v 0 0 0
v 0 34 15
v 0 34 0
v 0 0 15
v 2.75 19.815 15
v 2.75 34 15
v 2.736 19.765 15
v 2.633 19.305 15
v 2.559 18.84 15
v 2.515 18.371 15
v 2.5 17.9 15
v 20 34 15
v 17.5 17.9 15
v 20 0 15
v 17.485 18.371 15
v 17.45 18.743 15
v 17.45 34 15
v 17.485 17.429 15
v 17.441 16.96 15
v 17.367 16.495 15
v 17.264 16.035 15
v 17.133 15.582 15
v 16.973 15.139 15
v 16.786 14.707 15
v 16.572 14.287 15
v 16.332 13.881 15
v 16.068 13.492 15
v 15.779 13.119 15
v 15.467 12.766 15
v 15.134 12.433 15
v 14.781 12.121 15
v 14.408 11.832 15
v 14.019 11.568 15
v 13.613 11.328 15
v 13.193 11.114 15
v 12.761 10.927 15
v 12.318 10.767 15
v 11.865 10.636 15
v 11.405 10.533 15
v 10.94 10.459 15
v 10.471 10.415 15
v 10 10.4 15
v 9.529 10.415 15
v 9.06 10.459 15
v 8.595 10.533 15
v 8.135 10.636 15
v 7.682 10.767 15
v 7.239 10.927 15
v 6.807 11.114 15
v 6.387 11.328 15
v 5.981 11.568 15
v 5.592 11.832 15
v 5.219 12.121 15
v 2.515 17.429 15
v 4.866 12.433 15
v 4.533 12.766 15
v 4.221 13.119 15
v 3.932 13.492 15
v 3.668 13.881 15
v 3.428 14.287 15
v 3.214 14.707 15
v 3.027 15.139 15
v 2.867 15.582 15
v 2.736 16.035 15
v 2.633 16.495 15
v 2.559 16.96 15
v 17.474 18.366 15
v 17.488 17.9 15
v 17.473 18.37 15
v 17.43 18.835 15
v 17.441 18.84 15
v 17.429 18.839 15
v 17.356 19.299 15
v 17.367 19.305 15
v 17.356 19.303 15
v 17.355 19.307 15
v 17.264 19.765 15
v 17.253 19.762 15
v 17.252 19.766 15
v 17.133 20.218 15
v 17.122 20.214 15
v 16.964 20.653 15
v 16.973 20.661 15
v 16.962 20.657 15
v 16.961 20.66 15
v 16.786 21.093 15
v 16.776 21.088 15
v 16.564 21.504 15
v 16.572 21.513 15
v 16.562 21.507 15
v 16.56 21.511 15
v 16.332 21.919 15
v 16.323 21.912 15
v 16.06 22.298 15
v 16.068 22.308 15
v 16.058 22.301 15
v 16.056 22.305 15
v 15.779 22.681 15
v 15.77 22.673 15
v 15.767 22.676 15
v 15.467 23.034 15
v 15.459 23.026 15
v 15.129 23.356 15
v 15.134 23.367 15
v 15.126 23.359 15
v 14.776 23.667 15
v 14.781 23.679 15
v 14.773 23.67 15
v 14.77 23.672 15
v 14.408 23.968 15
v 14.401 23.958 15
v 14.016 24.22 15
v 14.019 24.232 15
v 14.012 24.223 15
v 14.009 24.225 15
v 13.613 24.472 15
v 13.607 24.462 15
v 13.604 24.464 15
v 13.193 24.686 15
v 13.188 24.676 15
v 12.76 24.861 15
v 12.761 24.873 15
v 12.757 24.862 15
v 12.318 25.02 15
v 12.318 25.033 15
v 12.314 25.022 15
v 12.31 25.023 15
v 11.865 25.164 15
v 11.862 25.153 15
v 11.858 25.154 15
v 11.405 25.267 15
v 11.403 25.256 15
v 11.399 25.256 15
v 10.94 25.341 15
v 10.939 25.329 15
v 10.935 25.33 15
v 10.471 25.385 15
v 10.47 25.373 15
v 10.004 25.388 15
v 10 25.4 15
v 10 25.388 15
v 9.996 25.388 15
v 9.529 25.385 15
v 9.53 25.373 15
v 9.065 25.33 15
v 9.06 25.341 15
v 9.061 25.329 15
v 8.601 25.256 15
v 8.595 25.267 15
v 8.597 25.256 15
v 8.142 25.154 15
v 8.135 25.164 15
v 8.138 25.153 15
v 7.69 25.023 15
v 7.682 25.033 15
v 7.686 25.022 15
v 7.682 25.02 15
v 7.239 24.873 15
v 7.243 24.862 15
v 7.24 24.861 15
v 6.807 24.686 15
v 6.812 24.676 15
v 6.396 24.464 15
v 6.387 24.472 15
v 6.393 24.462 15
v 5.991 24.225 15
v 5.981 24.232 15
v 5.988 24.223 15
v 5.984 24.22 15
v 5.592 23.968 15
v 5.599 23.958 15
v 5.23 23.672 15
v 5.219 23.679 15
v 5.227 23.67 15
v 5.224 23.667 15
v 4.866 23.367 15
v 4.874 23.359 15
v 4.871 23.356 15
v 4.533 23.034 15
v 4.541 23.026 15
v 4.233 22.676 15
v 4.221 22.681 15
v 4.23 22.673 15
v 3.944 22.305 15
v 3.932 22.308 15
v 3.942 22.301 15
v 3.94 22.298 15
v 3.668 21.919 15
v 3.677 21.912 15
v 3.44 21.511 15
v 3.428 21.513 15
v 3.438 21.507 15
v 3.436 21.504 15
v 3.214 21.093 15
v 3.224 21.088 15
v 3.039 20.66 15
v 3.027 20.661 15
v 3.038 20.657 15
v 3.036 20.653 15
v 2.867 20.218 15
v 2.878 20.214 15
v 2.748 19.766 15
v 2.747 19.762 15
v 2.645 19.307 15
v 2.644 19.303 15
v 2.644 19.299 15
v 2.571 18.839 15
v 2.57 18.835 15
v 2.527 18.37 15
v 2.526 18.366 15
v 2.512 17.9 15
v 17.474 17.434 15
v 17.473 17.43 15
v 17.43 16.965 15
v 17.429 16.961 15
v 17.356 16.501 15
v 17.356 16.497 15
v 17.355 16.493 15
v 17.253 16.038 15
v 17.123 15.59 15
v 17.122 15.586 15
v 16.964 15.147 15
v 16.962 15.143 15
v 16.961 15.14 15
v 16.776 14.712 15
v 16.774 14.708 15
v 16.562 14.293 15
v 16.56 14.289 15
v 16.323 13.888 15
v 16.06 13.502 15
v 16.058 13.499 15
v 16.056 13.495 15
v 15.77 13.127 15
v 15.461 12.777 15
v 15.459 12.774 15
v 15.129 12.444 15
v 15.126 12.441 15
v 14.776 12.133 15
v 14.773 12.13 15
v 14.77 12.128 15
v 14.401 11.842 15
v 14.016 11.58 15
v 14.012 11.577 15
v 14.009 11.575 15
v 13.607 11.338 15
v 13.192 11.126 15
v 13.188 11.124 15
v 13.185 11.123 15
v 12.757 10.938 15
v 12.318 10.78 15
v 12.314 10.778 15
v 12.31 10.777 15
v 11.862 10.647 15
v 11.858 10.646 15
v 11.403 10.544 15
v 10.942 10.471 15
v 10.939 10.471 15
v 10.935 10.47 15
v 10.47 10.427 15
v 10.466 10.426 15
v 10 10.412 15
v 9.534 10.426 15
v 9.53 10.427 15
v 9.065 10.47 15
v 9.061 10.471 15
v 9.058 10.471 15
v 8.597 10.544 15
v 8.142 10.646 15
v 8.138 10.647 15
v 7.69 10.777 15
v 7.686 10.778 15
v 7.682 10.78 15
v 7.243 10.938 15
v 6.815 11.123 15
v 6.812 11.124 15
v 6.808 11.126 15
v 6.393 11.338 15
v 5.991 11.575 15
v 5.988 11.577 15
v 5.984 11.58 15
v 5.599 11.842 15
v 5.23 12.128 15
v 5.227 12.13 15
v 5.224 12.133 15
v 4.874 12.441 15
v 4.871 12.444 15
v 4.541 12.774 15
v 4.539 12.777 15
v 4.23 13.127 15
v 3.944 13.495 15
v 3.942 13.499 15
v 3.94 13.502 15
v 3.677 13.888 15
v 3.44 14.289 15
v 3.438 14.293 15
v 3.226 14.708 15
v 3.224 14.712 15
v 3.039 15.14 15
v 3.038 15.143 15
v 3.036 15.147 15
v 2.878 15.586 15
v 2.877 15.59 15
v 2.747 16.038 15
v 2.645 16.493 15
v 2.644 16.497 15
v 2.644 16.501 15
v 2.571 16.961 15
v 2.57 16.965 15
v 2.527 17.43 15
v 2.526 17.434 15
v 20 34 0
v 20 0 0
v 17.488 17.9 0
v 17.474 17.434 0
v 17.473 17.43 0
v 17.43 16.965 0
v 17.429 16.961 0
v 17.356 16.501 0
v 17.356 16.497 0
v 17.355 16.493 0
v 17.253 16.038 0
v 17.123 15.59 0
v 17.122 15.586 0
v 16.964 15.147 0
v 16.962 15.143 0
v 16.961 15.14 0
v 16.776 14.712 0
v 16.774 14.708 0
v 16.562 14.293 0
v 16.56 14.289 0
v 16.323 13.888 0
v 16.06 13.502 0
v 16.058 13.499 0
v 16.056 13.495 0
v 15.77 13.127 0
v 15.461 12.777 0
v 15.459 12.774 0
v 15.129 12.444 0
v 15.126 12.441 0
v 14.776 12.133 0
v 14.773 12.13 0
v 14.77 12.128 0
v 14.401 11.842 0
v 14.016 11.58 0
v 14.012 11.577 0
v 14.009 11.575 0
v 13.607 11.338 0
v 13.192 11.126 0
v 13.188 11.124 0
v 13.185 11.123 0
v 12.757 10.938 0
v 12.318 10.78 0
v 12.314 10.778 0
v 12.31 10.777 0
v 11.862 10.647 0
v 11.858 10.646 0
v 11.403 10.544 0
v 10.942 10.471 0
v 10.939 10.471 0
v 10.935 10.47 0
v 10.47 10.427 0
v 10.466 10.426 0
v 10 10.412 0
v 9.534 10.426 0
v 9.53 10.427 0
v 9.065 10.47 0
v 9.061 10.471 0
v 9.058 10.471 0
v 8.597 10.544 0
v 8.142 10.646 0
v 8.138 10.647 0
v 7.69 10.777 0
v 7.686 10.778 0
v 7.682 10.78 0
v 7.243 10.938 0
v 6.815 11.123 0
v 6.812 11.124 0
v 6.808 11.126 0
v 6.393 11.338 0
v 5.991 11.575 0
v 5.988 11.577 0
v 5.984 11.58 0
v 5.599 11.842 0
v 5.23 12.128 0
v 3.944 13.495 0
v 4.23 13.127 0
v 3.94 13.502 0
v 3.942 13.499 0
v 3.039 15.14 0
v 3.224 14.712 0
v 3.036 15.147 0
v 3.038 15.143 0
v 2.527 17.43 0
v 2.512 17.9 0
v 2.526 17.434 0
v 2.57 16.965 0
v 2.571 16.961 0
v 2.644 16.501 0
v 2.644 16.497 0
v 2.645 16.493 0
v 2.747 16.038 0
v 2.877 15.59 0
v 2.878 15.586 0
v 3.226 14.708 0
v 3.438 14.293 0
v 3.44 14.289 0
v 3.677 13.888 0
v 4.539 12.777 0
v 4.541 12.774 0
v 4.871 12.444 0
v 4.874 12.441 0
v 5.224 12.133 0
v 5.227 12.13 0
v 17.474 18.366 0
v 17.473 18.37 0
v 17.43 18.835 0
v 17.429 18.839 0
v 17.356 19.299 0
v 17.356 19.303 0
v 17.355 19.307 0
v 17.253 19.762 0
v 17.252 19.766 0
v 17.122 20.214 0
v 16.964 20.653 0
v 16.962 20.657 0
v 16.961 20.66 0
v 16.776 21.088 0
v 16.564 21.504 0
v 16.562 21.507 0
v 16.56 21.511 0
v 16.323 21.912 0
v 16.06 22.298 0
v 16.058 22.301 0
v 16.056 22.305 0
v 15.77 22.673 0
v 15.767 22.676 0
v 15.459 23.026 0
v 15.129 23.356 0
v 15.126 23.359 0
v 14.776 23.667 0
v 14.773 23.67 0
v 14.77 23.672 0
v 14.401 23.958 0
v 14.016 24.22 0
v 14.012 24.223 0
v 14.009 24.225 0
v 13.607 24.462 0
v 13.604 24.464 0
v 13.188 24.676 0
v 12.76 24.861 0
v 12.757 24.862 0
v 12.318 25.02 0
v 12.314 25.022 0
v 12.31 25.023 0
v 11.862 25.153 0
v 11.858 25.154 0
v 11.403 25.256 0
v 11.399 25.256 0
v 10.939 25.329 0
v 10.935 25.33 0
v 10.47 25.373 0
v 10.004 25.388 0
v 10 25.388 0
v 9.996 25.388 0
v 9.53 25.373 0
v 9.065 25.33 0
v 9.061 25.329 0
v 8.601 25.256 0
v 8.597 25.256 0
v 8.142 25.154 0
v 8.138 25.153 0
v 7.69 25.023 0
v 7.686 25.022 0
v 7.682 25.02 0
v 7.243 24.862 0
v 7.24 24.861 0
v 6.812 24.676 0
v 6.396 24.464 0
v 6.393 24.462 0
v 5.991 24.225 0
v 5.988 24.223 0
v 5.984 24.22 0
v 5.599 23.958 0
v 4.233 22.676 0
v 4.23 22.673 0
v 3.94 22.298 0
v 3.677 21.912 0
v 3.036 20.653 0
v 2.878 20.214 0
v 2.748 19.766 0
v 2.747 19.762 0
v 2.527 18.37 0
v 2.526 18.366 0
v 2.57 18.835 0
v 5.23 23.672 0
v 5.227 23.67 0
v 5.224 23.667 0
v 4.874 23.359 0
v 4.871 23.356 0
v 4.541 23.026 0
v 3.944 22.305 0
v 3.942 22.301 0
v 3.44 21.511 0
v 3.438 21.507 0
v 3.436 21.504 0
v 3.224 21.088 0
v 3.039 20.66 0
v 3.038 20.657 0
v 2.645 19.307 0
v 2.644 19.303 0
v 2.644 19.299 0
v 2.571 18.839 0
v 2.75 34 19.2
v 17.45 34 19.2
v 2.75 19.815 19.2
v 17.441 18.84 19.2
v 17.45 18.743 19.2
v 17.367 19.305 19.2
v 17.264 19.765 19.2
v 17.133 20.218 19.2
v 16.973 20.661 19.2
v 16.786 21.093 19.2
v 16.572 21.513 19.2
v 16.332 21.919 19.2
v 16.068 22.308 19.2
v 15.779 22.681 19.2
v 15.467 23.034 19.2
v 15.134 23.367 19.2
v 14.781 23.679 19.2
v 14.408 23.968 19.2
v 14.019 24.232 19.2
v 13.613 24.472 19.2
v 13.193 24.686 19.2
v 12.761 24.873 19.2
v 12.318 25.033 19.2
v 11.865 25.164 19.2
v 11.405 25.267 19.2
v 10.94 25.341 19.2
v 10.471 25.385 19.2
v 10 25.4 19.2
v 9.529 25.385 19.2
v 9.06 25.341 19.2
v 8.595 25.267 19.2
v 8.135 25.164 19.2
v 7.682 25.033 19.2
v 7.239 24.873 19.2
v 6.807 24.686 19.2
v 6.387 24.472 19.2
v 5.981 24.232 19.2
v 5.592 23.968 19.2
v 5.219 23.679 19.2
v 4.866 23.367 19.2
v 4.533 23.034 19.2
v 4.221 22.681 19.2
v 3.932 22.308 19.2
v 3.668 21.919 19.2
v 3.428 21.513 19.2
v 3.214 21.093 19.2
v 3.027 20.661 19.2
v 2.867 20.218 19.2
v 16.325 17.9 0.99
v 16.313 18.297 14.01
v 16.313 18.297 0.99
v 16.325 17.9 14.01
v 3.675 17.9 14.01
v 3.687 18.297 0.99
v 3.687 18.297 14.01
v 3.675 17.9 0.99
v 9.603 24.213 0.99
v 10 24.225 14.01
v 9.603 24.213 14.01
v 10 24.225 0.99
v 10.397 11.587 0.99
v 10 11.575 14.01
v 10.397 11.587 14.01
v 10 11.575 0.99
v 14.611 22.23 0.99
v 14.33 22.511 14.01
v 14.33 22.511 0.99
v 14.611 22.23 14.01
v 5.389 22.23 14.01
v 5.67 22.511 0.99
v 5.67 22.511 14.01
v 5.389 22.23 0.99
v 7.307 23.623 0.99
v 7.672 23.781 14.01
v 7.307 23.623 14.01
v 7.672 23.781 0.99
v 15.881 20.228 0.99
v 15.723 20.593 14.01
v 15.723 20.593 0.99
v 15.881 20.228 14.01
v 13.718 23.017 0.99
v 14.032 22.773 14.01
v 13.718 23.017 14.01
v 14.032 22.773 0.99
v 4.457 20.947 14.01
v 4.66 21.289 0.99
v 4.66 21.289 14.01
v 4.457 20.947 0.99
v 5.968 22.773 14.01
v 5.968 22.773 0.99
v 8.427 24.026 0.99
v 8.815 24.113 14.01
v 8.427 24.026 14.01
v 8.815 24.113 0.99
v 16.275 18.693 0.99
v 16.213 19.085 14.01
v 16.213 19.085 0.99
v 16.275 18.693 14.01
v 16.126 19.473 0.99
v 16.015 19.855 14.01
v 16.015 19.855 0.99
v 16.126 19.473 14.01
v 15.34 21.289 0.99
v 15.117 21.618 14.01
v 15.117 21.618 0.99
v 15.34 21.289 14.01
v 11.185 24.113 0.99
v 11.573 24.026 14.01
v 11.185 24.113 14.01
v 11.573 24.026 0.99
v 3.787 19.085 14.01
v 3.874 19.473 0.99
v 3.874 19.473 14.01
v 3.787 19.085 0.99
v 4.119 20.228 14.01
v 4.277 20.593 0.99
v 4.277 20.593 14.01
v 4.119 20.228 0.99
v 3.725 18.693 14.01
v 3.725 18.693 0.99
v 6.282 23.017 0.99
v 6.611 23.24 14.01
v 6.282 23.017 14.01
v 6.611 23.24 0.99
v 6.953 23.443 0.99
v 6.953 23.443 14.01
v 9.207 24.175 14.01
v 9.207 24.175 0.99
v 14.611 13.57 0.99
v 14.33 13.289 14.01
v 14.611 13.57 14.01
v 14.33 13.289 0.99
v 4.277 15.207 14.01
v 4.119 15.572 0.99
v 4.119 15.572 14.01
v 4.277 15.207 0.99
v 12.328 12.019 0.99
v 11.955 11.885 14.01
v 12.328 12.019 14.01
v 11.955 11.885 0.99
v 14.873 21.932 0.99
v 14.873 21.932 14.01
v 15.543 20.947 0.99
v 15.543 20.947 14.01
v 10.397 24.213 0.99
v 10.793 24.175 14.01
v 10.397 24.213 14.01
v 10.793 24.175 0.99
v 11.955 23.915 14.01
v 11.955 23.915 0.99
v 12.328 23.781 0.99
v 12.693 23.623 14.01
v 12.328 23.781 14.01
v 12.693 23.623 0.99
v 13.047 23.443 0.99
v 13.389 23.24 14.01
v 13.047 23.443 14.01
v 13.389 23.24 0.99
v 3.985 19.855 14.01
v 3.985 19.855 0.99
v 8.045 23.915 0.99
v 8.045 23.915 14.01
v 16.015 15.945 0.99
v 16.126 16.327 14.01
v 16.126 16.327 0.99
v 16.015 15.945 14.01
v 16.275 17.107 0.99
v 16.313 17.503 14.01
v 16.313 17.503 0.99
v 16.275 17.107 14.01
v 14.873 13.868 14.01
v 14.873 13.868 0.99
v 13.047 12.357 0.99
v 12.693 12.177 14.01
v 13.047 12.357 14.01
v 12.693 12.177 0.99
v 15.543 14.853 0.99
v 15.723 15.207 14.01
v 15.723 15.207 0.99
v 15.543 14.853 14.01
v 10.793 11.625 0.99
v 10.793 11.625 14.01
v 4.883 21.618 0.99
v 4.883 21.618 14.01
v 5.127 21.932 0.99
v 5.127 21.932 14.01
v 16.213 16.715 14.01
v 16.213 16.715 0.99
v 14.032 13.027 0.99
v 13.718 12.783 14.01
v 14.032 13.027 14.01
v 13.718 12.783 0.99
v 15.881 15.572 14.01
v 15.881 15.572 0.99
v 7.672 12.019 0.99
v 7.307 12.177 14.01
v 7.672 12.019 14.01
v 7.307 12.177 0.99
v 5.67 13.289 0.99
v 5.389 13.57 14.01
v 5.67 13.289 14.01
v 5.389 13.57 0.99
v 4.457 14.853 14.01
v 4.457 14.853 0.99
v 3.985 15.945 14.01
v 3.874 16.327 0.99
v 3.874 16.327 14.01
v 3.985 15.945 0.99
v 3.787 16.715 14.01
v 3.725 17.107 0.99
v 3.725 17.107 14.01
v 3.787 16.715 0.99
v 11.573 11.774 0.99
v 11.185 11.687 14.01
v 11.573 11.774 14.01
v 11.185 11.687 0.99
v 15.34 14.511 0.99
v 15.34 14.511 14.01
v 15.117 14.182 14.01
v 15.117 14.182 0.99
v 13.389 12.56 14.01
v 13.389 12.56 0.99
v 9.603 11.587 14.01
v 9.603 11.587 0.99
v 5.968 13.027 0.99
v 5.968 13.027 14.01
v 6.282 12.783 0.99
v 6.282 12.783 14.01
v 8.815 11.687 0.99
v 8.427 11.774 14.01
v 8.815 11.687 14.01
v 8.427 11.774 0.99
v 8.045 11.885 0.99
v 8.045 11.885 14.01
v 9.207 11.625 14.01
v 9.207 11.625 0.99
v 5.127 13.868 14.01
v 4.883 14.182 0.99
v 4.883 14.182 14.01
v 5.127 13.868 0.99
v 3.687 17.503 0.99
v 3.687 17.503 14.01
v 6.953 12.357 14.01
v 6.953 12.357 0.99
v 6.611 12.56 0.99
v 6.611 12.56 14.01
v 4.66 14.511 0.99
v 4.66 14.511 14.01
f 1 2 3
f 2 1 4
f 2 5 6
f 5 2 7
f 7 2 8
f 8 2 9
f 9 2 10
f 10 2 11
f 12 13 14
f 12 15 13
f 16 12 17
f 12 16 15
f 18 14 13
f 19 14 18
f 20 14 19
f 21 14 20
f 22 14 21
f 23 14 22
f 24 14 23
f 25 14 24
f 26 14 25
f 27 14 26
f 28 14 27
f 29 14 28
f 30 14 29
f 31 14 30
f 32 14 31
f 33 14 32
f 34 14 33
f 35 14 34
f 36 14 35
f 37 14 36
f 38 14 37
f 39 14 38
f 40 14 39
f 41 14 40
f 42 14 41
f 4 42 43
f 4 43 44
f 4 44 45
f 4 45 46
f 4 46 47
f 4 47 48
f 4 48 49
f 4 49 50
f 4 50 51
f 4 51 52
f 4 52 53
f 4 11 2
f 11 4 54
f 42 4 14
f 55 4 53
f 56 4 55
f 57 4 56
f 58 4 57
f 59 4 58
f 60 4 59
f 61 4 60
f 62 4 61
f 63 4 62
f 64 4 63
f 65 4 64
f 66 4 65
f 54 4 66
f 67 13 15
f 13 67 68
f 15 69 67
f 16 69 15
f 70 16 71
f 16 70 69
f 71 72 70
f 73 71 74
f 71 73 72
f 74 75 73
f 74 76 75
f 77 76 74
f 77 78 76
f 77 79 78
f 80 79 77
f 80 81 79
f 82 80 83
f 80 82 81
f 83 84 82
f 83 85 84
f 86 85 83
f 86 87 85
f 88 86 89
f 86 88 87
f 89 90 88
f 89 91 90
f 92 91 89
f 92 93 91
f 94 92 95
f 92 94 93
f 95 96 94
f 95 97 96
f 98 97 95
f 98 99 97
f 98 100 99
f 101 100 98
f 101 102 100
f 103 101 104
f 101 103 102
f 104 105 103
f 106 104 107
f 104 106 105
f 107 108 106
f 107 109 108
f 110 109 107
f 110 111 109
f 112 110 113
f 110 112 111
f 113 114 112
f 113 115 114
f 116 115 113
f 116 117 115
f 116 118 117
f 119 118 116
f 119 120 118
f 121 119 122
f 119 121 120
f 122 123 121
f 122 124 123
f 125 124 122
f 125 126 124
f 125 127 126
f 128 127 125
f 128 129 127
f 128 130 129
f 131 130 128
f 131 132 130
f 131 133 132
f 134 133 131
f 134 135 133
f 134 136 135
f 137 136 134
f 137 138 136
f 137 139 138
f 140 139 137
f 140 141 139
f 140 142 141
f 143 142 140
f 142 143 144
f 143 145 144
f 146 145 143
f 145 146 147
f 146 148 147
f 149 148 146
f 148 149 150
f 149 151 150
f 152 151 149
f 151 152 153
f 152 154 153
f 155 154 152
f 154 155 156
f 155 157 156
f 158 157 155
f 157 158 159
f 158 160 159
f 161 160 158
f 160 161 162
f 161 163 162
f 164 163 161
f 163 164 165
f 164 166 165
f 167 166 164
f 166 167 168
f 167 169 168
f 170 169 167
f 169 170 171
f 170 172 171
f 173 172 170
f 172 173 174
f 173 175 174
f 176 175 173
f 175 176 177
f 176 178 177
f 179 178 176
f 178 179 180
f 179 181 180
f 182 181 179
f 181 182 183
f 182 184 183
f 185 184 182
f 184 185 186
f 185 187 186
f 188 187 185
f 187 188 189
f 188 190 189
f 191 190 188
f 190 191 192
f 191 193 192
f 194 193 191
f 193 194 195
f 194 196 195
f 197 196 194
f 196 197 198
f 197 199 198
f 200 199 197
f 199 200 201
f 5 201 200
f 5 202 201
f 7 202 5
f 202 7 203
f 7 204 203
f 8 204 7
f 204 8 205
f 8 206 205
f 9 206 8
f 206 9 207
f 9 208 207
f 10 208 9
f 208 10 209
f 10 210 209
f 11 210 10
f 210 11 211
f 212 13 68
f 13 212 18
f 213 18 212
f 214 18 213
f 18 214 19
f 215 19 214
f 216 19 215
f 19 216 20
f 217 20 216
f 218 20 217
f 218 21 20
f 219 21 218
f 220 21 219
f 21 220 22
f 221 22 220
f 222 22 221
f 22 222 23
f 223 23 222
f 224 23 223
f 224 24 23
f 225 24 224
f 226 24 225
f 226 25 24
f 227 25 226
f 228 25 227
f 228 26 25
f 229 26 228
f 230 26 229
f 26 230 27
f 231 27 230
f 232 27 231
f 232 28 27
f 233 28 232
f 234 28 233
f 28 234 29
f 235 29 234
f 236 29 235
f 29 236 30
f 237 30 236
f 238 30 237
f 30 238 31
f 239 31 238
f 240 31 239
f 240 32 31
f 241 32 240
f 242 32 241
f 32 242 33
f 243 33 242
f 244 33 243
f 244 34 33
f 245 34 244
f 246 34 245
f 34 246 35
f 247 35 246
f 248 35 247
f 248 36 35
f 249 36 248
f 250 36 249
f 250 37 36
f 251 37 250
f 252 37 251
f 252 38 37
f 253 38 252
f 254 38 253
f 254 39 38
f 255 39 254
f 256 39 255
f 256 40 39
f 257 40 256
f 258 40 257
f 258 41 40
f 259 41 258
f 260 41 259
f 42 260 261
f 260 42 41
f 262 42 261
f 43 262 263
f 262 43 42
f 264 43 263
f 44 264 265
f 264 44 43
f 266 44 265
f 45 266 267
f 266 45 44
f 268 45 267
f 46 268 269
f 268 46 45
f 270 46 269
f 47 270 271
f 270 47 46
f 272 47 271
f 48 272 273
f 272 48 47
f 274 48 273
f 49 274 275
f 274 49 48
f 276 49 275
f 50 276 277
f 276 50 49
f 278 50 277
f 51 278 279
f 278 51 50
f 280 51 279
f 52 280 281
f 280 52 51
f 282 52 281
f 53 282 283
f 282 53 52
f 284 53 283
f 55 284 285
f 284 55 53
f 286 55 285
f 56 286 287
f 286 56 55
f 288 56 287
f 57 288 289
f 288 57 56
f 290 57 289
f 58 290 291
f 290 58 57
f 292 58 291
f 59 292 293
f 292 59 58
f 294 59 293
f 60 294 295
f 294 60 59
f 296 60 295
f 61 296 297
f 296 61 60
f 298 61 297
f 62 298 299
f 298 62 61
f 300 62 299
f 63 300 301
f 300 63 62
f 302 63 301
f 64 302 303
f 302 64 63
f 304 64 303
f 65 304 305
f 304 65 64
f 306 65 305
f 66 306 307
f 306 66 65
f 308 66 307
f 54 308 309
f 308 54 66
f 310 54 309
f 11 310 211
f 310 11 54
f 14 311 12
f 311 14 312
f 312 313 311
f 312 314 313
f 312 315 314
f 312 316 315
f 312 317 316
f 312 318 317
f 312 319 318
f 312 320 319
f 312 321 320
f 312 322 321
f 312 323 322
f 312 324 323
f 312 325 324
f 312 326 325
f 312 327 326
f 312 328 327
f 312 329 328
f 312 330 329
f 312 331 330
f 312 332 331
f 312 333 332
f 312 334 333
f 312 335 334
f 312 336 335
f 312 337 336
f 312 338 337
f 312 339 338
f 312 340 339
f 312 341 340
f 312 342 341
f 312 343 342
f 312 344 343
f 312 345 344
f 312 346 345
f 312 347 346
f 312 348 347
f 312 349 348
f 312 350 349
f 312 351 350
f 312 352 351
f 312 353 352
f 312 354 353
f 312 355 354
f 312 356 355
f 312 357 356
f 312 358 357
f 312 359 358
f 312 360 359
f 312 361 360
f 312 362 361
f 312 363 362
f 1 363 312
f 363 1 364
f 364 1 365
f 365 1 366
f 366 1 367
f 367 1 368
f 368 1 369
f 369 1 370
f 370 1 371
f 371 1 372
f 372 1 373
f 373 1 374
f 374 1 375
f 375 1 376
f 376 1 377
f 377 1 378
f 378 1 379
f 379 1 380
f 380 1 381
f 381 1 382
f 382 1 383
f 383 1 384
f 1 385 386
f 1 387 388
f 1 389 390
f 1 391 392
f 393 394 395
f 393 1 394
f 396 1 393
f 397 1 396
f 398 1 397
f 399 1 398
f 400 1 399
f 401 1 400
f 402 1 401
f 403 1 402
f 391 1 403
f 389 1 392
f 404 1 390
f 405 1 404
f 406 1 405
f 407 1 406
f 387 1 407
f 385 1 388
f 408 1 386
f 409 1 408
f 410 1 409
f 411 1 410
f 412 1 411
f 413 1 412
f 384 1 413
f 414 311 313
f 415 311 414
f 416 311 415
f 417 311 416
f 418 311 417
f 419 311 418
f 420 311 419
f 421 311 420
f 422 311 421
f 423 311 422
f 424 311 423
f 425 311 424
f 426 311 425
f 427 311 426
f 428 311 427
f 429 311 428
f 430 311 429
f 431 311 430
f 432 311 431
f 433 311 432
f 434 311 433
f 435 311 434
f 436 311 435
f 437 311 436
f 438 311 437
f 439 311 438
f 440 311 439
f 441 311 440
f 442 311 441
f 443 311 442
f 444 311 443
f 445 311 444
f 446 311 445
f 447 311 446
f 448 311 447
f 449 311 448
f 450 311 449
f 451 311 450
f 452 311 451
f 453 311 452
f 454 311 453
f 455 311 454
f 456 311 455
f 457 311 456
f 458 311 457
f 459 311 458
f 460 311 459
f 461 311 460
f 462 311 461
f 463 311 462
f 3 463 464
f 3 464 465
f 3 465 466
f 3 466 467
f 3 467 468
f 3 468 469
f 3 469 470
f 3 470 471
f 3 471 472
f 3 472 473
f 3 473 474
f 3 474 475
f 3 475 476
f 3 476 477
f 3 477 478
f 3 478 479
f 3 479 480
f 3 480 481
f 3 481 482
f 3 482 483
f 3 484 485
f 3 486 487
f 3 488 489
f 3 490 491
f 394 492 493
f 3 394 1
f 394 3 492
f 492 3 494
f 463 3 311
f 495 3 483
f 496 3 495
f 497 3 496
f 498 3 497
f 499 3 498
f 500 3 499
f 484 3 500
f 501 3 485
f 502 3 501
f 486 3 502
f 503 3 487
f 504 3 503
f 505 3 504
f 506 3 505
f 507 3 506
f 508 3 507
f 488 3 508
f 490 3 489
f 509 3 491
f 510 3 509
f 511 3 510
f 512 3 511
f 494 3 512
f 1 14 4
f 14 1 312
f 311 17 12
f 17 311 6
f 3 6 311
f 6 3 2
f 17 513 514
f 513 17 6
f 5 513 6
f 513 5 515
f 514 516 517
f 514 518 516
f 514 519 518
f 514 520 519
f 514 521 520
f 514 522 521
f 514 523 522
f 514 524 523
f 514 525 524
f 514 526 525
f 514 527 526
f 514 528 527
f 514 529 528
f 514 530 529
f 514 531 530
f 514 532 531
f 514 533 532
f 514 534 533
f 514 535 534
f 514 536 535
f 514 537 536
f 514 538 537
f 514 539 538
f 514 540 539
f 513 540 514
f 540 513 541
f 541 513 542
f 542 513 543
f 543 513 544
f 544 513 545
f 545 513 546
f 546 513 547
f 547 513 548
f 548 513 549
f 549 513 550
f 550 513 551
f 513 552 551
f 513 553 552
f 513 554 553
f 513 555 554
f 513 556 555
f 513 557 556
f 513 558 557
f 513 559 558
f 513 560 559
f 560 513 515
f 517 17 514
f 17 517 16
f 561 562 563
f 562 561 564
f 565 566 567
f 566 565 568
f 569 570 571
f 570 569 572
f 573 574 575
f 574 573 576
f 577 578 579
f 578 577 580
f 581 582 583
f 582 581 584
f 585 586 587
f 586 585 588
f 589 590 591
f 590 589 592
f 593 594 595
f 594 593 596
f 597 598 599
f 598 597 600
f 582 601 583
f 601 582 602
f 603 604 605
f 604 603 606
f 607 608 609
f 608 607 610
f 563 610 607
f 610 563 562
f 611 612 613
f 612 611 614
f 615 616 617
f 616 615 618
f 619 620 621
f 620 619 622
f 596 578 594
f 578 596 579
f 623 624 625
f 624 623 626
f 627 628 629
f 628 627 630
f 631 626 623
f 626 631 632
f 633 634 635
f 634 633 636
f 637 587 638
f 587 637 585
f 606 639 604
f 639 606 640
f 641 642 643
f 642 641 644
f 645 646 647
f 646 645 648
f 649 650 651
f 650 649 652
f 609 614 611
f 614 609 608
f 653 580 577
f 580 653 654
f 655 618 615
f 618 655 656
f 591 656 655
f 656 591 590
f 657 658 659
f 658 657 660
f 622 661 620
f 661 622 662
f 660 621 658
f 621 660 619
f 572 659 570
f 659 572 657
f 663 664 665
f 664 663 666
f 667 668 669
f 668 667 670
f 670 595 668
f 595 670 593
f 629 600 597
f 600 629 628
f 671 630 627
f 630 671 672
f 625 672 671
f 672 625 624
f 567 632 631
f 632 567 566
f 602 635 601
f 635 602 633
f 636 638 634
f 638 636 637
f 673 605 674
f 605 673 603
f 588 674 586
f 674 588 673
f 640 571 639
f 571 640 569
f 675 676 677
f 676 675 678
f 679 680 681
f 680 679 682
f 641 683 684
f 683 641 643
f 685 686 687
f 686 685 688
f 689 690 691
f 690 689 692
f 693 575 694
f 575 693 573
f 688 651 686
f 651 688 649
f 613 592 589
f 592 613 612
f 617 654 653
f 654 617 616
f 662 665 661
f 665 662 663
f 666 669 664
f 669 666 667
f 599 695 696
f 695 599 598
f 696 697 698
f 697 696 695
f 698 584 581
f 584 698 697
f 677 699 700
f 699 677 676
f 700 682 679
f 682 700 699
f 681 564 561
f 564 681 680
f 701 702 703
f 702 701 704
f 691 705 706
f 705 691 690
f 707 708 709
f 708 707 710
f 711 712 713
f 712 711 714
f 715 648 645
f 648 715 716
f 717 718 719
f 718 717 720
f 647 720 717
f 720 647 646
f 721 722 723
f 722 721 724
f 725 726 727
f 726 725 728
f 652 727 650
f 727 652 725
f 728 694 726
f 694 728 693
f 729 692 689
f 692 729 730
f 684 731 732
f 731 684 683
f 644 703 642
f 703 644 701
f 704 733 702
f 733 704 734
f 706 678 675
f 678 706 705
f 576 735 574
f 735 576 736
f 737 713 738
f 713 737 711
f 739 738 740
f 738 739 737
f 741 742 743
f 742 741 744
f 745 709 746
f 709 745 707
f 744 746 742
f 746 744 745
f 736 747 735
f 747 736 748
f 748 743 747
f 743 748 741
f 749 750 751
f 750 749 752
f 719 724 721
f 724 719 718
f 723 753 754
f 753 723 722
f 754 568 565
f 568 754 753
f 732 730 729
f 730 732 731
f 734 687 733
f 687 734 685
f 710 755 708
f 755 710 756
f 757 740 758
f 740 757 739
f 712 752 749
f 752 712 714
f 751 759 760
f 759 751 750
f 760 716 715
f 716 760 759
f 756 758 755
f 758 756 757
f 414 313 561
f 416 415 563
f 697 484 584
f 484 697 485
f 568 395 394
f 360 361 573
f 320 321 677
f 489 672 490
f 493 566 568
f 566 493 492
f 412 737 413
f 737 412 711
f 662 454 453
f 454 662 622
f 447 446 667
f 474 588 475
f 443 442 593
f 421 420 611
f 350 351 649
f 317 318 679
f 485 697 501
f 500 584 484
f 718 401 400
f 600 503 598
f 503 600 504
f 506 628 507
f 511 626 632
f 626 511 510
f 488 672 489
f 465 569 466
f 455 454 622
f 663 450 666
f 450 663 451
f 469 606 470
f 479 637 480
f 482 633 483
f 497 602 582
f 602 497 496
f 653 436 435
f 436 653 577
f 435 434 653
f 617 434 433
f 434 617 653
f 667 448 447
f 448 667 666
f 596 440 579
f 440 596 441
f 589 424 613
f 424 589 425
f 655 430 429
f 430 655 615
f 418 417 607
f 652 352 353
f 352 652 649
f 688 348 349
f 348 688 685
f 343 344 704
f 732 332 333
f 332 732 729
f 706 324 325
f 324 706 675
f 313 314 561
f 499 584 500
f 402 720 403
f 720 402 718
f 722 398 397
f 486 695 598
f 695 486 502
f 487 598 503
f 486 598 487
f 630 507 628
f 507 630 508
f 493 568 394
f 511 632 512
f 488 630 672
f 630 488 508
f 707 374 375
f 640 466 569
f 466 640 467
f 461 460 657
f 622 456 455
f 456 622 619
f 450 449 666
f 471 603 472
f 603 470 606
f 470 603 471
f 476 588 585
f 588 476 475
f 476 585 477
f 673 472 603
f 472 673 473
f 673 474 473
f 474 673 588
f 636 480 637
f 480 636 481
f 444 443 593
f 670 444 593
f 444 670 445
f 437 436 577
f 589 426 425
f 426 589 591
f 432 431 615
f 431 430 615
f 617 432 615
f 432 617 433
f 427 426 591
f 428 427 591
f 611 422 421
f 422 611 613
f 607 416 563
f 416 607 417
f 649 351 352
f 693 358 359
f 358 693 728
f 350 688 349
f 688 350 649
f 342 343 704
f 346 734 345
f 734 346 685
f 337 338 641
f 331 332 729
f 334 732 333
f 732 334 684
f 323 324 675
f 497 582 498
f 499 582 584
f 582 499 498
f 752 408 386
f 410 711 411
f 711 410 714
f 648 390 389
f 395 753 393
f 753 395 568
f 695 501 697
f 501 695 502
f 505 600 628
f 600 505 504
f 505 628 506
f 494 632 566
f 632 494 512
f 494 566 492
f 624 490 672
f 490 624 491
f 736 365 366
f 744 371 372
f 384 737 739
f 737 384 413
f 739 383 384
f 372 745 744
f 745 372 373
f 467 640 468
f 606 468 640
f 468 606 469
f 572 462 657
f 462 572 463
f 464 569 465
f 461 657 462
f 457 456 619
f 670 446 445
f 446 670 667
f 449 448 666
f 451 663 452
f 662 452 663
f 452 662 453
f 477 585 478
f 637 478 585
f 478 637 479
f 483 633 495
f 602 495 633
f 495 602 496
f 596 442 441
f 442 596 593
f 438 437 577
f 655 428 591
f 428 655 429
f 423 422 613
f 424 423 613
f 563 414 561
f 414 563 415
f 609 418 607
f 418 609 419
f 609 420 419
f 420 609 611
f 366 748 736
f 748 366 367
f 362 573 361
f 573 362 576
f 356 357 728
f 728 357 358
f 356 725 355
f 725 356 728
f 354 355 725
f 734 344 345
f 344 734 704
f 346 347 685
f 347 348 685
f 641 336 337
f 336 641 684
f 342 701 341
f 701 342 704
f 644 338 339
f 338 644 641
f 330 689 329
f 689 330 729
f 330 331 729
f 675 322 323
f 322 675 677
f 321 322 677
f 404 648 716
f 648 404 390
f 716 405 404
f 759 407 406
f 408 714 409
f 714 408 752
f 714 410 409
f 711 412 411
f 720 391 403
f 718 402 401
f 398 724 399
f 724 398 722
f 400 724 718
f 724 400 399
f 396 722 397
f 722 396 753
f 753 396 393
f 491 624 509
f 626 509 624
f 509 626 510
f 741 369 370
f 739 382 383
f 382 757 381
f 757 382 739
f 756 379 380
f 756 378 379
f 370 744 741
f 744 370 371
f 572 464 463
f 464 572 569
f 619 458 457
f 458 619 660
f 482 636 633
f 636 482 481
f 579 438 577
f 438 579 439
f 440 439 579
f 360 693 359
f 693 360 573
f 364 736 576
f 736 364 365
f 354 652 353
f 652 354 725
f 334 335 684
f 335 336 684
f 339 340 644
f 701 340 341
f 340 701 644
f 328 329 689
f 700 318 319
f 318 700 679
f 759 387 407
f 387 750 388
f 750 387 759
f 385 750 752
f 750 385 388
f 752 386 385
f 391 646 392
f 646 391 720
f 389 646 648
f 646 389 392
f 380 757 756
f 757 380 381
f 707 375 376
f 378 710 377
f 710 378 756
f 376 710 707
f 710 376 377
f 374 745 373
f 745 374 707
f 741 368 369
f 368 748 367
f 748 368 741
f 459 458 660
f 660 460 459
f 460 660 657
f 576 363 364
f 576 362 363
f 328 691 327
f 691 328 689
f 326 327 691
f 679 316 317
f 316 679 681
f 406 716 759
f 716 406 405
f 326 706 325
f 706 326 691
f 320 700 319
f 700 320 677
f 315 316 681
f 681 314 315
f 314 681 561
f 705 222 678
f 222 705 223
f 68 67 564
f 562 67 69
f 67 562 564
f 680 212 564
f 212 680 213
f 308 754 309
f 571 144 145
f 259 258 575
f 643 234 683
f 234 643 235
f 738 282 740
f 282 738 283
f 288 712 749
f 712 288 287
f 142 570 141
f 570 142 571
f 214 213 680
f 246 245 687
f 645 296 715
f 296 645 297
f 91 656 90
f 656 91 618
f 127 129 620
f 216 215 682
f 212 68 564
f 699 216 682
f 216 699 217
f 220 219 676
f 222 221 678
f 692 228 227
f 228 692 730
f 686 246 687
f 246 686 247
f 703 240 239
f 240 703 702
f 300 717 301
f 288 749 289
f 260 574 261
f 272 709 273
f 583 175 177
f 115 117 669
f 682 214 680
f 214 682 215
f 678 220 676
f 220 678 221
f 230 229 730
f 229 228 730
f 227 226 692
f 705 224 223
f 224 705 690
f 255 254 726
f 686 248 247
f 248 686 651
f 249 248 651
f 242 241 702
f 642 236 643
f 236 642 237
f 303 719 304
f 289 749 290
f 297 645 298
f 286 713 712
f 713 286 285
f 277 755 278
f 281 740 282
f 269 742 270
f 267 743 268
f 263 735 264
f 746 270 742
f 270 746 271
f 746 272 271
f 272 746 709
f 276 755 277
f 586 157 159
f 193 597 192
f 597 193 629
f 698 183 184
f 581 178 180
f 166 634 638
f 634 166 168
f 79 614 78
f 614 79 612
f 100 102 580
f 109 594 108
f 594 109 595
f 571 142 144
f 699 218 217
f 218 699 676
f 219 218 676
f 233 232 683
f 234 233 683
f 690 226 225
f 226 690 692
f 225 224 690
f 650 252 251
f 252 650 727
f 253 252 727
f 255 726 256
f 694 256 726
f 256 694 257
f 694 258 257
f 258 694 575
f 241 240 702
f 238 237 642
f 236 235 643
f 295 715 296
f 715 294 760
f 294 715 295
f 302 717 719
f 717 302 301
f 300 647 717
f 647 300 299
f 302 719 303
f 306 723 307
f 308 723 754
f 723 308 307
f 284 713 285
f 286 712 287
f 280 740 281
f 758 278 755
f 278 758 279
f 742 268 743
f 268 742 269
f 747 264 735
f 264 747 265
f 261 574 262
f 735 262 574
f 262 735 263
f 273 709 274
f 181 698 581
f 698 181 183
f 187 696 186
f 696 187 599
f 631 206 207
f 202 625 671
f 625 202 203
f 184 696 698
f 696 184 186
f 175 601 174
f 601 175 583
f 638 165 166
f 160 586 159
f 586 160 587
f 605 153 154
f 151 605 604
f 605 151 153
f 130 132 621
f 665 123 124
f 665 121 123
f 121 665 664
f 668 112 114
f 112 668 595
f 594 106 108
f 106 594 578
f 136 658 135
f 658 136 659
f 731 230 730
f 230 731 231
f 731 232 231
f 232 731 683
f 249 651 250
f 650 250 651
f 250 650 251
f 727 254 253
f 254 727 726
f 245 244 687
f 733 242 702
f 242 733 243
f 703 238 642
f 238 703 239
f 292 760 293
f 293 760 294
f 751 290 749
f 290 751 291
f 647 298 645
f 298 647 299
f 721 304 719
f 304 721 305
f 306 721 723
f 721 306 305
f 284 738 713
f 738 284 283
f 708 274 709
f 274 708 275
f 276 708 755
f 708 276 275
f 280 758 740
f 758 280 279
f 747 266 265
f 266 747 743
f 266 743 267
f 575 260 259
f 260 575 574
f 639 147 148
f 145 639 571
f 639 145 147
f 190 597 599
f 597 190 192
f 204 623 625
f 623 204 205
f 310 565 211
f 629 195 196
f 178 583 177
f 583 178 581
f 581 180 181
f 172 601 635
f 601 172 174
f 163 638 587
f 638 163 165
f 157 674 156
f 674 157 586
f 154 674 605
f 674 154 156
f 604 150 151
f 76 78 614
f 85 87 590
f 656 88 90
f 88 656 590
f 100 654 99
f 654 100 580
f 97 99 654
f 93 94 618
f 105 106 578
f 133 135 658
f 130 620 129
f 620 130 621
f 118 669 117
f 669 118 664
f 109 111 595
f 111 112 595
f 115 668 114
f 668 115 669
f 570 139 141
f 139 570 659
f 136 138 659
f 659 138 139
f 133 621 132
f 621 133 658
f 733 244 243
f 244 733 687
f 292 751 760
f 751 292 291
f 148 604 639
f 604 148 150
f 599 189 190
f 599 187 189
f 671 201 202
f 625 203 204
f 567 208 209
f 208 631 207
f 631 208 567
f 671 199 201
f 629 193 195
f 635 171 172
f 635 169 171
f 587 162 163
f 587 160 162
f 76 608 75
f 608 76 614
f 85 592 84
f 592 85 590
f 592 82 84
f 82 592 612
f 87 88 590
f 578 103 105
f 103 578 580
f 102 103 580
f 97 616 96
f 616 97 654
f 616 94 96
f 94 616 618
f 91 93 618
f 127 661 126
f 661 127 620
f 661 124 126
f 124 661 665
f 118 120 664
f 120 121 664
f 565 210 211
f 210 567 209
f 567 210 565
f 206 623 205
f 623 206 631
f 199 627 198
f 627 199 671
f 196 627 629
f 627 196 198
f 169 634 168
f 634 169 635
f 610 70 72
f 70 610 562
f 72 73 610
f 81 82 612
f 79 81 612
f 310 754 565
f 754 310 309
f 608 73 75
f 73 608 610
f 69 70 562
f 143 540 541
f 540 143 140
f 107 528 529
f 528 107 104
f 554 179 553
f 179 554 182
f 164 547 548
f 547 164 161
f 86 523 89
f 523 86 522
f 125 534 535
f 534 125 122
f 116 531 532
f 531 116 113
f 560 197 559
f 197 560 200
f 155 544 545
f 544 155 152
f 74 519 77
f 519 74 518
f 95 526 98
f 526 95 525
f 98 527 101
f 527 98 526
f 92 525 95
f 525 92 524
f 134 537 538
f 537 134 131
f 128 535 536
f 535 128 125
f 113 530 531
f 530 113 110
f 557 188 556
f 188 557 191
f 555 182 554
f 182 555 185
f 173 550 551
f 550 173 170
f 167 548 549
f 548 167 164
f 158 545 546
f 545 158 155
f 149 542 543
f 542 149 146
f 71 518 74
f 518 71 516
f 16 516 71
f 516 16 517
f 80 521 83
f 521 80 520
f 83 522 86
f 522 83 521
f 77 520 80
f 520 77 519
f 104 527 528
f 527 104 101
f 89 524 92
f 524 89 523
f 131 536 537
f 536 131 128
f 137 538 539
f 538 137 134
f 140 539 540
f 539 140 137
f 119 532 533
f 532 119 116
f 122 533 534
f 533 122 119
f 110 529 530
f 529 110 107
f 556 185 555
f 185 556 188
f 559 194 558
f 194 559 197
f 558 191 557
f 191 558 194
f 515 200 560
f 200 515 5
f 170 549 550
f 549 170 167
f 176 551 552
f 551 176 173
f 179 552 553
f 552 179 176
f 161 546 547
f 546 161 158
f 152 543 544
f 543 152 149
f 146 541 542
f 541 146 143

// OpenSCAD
$fn = 100;

difference(){

    union(){
        
        cube([ 20, 34, 15]);
        
        translate([ 2.75, 17.9, 15])
        cube([ 14.7, 16.1, 4.2]);
    };
    
    translate([ 10, 17.9, -1])
    cylinder( h = 22, d = 12.65);
    
    translate([ 10, 17.9, -0.01])
    cylinder( h = 1, d1 = 15, d2 = 12.65);
    
    translate([ 10, 17.9, 14.01])
    cylinder( h = 1, d1 = 12.65, d2 = 15);
    
    translate([ 10, 17.9, 15])
    cylinder( h = 20, d = 15);
};
